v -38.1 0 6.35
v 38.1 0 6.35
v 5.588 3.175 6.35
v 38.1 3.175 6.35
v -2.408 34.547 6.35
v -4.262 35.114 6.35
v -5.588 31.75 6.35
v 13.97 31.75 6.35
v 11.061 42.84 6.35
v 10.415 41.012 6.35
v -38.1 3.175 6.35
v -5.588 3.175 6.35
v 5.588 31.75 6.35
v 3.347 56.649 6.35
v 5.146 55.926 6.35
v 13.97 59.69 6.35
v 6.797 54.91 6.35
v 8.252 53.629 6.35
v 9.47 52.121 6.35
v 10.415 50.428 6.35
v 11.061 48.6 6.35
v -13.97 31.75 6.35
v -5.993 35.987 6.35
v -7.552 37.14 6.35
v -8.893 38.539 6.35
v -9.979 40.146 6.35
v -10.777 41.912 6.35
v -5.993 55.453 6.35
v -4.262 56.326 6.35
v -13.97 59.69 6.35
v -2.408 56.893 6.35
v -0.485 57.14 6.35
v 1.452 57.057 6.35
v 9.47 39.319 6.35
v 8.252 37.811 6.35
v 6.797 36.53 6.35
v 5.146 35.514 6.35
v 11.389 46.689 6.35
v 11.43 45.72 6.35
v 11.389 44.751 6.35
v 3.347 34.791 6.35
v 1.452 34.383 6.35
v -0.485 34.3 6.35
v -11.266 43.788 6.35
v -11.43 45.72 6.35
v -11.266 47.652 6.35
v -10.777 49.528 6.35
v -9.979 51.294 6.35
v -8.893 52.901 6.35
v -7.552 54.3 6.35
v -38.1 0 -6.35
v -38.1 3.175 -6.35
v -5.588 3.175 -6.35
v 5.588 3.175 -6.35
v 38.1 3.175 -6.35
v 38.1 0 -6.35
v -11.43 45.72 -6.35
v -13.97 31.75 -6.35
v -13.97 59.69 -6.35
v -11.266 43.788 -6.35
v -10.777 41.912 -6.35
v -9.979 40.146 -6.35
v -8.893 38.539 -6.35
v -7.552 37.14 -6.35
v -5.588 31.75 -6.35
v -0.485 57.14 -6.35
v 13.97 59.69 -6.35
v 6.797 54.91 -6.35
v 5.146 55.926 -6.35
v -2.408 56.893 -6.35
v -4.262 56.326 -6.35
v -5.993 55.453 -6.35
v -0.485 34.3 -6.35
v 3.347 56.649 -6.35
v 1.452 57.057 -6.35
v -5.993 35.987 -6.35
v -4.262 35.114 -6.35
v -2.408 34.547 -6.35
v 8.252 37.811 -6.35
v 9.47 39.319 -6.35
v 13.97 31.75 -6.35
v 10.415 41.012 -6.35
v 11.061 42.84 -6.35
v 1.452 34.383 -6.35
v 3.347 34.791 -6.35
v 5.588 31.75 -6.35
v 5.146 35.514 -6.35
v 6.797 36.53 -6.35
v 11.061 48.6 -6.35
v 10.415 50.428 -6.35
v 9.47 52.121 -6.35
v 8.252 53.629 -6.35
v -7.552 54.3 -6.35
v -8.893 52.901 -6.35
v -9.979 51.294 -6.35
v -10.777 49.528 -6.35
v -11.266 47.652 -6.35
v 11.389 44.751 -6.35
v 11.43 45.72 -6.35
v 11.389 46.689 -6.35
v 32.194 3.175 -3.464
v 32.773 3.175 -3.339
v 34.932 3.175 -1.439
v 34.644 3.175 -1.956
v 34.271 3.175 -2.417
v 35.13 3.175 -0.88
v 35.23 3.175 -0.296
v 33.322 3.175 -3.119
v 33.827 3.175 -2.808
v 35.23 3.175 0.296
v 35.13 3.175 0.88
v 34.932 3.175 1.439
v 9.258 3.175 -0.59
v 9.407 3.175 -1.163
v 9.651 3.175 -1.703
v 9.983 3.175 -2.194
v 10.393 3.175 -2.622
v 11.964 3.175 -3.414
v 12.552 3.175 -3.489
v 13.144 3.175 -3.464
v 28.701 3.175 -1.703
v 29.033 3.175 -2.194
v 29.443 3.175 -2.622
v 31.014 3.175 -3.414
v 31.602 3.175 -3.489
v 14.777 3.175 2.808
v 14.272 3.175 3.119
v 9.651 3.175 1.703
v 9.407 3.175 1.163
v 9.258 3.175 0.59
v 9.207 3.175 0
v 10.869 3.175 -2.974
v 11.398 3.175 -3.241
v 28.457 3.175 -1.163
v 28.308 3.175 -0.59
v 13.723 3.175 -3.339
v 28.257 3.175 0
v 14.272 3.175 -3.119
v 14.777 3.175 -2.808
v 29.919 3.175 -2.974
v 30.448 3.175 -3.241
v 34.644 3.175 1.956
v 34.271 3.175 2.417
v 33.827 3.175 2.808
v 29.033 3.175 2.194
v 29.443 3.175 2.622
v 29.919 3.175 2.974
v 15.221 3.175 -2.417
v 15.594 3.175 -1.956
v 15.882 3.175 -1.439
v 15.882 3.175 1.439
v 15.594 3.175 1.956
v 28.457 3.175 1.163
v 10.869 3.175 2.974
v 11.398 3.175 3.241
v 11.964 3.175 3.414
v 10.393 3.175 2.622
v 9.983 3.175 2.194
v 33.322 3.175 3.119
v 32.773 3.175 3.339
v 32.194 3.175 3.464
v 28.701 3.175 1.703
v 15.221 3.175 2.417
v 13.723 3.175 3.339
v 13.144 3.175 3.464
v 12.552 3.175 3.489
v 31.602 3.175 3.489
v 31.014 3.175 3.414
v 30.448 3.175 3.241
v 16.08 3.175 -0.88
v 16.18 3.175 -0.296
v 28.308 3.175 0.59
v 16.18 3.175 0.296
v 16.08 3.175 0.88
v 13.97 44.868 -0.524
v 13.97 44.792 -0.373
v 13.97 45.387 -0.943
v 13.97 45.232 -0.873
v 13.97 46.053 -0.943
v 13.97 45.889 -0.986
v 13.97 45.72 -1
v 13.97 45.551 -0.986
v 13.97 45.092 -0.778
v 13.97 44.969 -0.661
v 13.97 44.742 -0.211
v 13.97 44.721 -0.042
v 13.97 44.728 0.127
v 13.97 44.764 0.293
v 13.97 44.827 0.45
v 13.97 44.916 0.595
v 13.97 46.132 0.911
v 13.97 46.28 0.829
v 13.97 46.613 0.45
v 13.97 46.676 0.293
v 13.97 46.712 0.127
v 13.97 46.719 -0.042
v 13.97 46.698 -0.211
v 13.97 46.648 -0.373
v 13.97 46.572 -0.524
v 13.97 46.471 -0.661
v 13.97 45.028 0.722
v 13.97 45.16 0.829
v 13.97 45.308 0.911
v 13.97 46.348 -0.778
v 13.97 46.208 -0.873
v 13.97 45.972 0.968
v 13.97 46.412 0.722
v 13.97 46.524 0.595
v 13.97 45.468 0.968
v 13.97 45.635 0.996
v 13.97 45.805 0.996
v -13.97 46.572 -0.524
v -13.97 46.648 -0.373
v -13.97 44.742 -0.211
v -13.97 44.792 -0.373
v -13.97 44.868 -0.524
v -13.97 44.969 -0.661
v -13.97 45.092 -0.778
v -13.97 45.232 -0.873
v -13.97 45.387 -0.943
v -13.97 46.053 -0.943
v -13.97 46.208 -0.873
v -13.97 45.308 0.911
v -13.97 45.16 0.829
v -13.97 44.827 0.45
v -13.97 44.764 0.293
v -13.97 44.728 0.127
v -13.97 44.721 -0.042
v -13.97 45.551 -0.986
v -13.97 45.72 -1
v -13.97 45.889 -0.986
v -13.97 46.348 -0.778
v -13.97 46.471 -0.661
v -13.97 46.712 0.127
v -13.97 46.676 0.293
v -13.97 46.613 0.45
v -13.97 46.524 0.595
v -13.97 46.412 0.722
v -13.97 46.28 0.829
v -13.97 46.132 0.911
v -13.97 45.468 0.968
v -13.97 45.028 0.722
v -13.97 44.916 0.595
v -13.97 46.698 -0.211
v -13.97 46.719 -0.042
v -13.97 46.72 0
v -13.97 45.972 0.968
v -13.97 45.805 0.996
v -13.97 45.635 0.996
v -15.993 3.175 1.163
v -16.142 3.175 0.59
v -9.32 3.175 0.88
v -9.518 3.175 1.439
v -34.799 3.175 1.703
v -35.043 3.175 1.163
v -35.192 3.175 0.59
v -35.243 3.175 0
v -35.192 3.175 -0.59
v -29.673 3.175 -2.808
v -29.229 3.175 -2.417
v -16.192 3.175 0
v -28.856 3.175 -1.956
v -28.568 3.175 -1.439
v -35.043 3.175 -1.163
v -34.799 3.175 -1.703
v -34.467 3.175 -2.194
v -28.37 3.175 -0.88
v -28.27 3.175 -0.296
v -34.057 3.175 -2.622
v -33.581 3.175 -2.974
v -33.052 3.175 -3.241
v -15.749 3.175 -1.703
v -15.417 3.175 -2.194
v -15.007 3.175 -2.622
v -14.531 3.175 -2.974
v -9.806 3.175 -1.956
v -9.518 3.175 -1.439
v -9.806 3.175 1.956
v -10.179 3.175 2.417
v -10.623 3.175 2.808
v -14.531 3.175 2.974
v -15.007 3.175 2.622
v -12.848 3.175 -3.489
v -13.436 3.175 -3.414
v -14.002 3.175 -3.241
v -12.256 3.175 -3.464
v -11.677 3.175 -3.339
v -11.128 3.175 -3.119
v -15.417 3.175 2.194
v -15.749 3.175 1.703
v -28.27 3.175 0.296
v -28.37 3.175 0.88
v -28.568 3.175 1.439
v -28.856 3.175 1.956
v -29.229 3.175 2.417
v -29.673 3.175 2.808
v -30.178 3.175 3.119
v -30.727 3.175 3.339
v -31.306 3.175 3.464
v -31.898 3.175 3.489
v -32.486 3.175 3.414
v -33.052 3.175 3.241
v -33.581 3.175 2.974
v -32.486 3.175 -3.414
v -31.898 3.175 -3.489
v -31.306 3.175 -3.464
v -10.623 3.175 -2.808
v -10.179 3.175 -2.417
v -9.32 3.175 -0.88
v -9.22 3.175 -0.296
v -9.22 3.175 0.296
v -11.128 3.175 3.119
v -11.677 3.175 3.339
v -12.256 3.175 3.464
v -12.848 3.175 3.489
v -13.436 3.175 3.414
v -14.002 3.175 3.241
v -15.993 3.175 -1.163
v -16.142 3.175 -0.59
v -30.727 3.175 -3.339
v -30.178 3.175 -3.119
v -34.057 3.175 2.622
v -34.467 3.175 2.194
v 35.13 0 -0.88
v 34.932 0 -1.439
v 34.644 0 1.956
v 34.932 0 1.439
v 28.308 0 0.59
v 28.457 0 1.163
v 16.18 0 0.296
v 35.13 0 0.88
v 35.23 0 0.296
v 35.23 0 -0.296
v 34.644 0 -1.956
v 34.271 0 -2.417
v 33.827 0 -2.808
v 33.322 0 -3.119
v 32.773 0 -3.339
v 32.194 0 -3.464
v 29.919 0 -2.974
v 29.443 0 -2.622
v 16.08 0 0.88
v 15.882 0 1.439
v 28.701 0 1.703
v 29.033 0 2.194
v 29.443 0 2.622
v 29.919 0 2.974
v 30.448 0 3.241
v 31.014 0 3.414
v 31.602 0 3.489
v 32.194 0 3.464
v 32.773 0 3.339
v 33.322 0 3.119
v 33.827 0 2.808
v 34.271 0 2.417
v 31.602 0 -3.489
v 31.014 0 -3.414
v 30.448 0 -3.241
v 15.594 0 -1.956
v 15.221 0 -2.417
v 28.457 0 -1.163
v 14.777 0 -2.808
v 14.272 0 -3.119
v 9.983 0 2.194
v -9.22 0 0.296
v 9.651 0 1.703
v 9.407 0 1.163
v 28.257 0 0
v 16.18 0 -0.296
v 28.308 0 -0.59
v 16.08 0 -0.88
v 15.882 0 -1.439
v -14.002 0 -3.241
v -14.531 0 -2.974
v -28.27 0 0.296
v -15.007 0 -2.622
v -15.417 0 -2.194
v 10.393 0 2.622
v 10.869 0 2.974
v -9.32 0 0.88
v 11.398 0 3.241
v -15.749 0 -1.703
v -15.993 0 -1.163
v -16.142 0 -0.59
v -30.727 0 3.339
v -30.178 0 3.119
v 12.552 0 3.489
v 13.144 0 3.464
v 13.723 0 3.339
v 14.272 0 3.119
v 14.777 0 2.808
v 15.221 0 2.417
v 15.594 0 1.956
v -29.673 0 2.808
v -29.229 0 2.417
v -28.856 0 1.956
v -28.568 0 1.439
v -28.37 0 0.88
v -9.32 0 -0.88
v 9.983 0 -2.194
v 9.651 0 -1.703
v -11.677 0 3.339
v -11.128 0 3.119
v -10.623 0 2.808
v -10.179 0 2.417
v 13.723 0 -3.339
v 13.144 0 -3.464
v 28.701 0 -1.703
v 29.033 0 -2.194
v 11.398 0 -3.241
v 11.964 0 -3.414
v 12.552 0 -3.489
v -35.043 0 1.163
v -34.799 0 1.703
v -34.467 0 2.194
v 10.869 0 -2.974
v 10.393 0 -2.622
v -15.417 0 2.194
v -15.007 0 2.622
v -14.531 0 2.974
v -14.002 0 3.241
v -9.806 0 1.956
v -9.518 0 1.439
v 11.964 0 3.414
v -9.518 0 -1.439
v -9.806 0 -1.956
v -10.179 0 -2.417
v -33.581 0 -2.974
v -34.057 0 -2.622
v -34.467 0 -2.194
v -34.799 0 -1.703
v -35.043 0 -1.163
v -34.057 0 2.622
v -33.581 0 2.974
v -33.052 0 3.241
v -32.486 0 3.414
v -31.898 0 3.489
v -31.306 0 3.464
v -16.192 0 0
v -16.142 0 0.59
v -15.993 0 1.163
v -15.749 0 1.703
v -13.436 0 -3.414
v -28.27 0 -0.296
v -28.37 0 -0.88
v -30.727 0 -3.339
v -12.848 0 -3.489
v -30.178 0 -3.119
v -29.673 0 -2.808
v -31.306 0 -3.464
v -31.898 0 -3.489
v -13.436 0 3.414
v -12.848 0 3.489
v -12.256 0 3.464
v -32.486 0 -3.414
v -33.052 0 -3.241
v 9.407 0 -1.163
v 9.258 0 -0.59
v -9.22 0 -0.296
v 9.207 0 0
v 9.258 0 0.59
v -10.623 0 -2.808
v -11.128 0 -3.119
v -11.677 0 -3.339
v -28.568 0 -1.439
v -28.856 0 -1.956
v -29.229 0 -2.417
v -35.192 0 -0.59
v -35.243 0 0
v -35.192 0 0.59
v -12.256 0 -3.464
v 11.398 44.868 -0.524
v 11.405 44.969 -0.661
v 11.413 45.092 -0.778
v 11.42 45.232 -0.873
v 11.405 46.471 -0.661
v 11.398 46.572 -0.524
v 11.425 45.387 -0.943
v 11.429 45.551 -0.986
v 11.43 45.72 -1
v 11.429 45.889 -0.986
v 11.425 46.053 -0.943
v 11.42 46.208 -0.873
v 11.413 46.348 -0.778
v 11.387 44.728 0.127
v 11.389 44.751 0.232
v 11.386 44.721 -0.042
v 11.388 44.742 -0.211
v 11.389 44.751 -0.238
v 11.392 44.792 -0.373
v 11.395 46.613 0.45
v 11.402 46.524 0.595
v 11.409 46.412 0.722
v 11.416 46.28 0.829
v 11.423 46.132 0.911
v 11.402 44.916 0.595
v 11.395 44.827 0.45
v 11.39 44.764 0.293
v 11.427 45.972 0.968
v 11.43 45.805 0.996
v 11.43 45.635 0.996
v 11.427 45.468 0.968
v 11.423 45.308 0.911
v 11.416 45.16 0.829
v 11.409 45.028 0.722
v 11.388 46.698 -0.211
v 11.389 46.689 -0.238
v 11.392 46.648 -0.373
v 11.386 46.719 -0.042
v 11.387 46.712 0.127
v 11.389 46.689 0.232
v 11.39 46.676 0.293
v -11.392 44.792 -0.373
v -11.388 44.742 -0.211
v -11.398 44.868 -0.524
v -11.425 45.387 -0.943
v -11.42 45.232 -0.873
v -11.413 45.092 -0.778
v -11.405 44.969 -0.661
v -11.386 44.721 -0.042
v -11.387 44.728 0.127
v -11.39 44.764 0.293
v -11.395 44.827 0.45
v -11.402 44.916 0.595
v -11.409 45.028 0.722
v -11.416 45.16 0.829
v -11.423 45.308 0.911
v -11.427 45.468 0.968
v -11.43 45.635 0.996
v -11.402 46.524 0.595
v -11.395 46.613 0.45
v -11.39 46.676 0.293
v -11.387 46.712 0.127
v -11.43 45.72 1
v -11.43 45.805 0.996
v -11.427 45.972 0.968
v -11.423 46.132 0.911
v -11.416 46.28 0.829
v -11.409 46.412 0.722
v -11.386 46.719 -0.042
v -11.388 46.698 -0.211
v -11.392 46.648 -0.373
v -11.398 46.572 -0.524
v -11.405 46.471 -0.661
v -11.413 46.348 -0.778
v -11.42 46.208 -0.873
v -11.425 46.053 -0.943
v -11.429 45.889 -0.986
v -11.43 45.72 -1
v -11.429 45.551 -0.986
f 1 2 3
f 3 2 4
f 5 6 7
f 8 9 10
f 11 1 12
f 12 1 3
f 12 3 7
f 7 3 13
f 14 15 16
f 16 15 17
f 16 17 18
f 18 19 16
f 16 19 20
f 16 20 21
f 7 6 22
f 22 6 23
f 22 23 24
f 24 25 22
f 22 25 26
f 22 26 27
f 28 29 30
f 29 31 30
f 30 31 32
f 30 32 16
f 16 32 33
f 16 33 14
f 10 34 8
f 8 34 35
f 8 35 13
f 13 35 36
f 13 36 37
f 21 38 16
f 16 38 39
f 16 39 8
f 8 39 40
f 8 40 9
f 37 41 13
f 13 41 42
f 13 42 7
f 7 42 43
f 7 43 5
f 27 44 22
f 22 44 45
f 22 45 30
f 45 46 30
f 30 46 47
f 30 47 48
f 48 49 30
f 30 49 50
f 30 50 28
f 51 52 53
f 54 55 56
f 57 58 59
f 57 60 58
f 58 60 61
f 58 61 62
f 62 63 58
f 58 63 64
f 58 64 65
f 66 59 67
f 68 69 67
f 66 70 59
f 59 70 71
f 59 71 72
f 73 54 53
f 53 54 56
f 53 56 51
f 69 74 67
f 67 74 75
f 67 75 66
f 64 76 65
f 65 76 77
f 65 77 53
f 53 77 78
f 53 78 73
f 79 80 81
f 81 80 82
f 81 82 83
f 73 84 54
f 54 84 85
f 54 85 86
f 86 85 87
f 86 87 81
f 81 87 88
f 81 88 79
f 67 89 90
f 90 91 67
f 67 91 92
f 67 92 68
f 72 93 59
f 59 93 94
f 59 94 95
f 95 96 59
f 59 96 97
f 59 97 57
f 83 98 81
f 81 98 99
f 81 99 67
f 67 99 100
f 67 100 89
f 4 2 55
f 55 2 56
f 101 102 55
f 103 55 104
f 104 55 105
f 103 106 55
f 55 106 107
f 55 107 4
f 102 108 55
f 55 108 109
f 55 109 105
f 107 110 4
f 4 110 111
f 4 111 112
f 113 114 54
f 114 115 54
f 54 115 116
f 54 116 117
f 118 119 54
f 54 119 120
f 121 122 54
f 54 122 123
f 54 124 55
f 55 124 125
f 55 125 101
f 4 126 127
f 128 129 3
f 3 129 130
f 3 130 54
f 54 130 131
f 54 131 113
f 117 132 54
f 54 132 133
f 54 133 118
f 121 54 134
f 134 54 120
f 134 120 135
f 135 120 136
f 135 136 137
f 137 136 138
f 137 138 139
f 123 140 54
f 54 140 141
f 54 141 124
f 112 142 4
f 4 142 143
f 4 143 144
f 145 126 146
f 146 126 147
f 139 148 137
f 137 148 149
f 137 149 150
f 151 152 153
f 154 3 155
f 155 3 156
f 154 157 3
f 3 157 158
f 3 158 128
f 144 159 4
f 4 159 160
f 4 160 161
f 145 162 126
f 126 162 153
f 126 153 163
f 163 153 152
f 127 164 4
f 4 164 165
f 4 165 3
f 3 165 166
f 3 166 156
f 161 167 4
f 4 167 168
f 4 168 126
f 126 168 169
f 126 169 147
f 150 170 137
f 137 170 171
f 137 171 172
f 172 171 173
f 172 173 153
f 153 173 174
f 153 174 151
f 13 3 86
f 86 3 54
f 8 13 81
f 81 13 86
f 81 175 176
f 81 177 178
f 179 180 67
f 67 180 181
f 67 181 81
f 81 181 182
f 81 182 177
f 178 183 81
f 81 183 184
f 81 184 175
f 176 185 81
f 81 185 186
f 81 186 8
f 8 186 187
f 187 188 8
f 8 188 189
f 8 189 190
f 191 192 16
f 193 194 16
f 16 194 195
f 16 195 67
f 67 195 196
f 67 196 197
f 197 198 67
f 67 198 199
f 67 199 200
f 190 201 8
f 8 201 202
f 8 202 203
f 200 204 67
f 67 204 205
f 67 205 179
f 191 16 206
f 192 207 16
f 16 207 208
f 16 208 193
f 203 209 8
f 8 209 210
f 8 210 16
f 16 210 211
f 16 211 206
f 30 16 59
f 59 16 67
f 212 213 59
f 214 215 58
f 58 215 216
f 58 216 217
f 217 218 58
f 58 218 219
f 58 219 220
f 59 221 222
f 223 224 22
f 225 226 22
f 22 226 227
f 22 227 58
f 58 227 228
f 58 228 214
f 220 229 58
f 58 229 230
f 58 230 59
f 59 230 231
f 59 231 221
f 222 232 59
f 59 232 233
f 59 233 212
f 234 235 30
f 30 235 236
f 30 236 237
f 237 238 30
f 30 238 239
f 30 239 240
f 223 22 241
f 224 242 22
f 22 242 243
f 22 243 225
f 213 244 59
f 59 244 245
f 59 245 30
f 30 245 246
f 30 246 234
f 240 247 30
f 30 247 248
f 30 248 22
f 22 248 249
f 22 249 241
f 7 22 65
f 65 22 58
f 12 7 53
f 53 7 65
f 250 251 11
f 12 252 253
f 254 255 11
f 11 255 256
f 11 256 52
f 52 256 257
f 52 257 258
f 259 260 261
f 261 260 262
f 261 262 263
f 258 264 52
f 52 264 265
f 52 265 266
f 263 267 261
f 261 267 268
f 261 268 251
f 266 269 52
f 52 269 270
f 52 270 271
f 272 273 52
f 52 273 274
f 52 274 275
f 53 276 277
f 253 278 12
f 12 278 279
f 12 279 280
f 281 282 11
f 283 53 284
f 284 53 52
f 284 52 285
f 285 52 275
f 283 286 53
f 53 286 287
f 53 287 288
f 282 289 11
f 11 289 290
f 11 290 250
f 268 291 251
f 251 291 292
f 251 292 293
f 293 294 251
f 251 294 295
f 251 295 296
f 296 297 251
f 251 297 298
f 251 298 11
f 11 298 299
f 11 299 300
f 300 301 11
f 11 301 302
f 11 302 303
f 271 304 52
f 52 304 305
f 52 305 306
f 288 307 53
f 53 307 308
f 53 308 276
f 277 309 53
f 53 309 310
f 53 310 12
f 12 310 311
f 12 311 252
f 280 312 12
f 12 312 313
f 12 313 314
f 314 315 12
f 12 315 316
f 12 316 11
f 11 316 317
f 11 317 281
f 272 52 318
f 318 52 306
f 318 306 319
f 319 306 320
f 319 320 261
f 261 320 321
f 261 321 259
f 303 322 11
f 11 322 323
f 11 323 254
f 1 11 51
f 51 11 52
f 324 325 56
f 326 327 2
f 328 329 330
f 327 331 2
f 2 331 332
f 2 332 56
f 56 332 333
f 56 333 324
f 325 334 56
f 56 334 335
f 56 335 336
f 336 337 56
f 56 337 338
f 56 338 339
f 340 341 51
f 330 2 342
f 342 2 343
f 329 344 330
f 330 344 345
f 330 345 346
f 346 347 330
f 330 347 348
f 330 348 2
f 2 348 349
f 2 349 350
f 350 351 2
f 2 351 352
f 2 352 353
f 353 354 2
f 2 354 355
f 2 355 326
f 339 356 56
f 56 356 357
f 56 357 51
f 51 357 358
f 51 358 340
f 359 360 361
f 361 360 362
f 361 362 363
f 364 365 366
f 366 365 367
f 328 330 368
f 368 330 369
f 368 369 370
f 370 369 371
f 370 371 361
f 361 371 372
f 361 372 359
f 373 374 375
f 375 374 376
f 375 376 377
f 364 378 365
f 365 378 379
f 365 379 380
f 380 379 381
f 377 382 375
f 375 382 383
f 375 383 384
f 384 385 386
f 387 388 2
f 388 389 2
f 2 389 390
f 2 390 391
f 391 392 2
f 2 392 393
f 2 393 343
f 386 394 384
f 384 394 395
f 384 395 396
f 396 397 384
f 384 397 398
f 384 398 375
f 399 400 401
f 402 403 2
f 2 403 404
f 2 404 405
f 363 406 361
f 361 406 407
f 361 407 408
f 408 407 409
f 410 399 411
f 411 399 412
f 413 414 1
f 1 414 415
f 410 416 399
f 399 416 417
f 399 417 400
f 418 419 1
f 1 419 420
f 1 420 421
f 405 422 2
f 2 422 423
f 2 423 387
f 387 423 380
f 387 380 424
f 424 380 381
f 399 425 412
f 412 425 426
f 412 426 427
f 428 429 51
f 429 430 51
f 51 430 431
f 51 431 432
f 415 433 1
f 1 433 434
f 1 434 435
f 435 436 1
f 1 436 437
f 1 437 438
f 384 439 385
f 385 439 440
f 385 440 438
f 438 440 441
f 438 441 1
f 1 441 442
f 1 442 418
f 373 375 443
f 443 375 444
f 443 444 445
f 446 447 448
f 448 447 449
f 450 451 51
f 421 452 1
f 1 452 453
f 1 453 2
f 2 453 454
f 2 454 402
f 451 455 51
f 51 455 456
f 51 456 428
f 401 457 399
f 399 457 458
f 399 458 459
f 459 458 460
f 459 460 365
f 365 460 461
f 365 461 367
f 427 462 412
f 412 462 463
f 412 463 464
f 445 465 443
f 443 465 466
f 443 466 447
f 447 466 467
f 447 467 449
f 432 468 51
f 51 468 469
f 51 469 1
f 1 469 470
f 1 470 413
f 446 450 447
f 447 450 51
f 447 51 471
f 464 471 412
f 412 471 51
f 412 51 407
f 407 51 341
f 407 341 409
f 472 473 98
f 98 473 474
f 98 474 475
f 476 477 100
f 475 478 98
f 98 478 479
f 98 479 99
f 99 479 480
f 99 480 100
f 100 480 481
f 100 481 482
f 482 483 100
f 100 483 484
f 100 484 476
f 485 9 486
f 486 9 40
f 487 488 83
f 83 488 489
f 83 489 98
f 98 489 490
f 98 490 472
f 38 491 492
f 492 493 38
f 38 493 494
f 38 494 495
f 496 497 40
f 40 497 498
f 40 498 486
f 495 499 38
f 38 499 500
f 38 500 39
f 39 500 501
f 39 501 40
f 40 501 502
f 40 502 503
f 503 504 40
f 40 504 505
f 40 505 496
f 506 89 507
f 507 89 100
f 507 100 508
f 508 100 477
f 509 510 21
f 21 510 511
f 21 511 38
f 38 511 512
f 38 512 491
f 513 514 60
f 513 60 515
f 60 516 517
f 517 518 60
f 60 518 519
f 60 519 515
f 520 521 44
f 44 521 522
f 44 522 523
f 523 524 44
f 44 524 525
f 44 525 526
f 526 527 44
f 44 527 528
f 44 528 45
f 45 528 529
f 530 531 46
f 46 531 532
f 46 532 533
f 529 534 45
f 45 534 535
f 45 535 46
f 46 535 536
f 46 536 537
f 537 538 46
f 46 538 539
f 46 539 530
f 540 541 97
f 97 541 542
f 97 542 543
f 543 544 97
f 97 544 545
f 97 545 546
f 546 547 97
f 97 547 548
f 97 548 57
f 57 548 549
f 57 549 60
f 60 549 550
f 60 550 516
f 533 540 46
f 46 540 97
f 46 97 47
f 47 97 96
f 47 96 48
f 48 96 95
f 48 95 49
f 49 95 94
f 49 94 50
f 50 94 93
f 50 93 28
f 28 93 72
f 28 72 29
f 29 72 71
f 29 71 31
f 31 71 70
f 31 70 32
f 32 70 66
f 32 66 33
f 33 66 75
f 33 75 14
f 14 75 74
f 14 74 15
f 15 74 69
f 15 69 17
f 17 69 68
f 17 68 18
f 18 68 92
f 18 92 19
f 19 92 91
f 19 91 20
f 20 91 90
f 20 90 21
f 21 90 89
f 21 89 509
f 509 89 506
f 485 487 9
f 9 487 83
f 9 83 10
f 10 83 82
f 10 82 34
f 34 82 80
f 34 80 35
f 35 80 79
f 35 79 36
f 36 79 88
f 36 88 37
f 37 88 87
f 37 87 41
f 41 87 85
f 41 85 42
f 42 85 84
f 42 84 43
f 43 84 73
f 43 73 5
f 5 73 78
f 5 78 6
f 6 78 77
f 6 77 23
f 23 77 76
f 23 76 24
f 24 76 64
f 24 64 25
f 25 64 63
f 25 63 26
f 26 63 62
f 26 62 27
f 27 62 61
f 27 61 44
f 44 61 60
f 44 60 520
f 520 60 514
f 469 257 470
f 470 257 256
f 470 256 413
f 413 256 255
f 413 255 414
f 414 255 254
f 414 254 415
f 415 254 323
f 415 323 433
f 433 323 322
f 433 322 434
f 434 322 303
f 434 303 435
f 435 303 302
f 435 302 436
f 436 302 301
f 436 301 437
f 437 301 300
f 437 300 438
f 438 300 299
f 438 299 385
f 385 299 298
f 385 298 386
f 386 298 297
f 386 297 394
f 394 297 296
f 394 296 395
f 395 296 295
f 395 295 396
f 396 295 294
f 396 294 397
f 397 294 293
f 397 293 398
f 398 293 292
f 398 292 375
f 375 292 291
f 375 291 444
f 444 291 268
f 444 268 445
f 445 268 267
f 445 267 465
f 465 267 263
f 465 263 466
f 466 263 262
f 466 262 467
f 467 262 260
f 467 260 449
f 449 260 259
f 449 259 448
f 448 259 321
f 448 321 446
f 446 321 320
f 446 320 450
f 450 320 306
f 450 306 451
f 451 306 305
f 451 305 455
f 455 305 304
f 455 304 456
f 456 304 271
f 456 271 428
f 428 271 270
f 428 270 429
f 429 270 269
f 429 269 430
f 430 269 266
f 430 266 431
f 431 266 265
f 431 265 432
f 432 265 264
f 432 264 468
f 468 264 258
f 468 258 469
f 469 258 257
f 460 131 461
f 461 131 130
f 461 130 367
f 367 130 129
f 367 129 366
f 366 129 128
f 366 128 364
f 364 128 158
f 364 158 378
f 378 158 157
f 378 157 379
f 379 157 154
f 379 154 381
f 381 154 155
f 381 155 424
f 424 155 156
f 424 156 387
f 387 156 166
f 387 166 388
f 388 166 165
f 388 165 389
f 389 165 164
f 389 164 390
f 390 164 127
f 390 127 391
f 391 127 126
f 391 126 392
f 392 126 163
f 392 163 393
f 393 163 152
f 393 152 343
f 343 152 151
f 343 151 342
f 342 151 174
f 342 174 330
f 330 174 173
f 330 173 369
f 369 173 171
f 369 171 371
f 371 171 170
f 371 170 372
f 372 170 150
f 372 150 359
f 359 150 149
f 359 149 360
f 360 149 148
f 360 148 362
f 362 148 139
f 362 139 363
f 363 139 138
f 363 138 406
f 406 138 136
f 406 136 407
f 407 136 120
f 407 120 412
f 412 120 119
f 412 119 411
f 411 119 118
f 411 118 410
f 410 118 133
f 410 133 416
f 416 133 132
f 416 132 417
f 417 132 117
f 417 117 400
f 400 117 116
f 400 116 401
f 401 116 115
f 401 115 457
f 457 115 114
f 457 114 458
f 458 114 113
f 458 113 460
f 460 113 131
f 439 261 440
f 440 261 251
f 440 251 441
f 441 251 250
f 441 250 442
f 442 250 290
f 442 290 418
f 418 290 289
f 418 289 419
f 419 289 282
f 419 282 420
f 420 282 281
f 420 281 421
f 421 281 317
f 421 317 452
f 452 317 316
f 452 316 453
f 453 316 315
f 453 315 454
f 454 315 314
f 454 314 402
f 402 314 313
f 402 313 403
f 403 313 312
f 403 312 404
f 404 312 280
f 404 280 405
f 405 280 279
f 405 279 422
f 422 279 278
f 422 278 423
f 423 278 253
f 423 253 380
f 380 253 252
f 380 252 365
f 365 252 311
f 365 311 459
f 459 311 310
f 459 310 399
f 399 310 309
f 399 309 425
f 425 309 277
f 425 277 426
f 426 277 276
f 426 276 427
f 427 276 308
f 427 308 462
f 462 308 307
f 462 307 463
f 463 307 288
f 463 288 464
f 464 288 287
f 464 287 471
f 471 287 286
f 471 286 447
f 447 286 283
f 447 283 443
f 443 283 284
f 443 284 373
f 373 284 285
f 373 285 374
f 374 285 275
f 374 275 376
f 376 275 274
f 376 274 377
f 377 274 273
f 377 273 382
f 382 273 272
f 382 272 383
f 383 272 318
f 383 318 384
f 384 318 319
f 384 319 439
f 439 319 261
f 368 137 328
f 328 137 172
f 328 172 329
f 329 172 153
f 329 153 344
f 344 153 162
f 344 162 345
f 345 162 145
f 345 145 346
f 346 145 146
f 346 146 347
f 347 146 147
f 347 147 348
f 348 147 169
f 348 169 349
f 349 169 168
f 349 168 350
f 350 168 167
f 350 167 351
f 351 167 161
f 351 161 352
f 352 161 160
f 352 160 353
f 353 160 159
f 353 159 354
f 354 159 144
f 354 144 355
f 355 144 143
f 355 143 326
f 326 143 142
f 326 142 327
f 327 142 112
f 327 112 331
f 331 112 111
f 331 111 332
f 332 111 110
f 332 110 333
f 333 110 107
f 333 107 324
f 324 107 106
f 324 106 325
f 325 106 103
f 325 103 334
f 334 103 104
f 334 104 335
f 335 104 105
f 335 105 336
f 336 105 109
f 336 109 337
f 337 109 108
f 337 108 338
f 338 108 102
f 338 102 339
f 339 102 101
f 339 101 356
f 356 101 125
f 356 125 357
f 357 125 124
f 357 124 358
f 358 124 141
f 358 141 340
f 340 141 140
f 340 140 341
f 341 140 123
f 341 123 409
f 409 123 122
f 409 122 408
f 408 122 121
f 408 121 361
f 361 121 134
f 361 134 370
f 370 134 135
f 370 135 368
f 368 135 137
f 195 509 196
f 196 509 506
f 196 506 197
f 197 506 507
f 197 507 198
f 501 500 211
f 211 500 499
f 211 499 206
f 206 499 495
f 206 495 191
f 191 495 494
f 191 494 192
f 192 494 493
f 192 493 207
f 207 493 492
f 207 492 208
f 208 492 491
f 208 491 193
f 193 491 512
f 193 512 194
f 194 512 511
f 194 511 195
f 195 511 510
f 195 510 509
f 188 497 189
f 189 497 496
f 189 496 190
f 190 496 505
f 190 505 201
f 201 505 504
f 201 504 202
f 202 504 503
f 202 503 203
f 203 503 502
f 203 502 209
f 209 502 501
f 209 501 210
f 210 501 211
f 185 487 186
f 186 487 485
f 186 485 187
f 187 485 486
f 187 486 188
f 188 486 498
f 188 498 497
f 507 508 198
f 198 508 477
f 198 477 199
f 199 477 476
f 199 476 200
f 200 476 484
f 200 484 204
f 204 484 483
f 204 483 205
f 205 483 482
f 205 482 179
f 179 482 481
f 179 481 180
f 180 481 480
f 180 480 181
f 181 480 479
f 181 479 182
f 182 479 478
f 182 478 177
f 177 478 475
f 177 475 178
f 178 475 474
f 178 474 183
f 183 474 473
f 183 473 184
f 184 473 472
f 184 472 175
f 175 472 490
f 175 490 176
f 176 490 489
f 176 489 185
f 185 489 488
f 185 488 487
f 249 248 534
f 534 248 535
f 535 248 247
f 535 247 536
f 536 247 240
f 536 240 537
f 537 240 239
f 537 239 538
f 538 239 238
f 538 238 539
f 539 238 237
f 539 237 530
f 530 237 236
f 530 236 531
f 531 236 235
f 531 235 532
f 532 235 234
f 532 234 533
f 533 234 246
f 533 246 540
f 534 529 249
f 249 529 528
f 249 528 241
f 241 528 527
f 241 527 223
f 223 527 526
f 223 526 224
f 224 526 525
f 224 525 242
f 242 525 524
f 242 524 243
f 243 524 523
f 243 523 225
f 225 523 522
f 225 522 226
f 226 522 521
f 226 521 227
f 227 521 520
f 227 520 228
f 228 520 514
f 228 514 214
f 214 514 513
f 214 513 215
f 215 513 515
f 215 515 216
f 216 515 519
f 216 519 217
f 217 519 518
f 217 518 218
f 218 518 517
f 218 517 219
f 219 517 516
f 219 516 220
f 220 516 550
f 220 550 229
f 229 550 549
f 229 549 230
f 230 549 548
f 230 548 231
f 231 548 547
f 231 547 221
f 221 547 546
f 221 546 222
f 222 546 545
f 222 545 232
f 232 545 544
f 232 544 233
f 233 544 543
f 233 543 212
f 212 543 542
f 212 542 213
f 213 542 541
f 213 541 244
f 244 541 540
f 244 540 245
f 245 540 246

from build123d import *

# Parameters (mm, degrees)
SKETCH1_R           = 11.43
BOSS_EXTRUDE1_DEPTH = 6.35
SKETCH2_R           = 3.4925
CUT_EXTRUDE1_DEPTH  = 69.453471241
SKETCH3_R           = 1
CUT_EXTRUDE2_DEPTH  = 80.463850272


with BuildPart() as part:
    # Sketch1 → Boss-Extrude1 (new, symmetric)
    with BuildSketch(Plane.XY):
        Polygon((-38.1, 0), (38.1, 0), (38.1, 3.175), (5.588, 3.175), (5.588, 31.75), (13.97, 31.75), (13.97, 59.69), (-13.97, 59.69), (-13.97, 31.75), (-5.588, 31.75), (-5.588, 3.175), (-38.1, 3.175), align=None)
        with Locations((0, 45.72)):
            Circle(SKETCH1_R, mode=Mode.SUBTRACT)
    extrude(amount=BOSS_EXTRUDE1_DEPTH, both=True)

    # Sketch2 → Cut-Extrude1 (cut, through all)
    with BuildSketch(Plane(origin=(0, 3.175, 0), x_dir=(1, 0, 0), z_dir=(0, 1, 0))):
        with Locations(Location((-31.75, 0, 0), (0, 0, 180))):
            Circle(SKETCH2_R)
        with Locations(Location((31.75, 0, 0), (0, 0, 180))):
            Circle(SKETCH2_R)
        with Locations(Location((-12.7, 0, 0), (0, 0, 180))):
            Circle(SKETCH2_R)
        with Locations(Location((12.7, 0, 0), (0, 0, 180))):
            Circle(SKETCH2_R)
    extrude(amount=-CUT_EXTRUDE1_DEPTH, mode=Mode.SUBTRACT)

    # Sketch3 → Cut-Extrude2 (cut, through all)
    with BuildSketch(Plane(origin=(13.97, 0, 0), x_dir=(0, 0, -1), z_dir=(1, 0, 0))):
        with Locations((0, 45.72)):
            Circle(SKETCH3_R)
    extrude(amount=-CUT_EXTRUDE2_DEPTH, mode=Mode.SUBTRACT)


solid = part.part
